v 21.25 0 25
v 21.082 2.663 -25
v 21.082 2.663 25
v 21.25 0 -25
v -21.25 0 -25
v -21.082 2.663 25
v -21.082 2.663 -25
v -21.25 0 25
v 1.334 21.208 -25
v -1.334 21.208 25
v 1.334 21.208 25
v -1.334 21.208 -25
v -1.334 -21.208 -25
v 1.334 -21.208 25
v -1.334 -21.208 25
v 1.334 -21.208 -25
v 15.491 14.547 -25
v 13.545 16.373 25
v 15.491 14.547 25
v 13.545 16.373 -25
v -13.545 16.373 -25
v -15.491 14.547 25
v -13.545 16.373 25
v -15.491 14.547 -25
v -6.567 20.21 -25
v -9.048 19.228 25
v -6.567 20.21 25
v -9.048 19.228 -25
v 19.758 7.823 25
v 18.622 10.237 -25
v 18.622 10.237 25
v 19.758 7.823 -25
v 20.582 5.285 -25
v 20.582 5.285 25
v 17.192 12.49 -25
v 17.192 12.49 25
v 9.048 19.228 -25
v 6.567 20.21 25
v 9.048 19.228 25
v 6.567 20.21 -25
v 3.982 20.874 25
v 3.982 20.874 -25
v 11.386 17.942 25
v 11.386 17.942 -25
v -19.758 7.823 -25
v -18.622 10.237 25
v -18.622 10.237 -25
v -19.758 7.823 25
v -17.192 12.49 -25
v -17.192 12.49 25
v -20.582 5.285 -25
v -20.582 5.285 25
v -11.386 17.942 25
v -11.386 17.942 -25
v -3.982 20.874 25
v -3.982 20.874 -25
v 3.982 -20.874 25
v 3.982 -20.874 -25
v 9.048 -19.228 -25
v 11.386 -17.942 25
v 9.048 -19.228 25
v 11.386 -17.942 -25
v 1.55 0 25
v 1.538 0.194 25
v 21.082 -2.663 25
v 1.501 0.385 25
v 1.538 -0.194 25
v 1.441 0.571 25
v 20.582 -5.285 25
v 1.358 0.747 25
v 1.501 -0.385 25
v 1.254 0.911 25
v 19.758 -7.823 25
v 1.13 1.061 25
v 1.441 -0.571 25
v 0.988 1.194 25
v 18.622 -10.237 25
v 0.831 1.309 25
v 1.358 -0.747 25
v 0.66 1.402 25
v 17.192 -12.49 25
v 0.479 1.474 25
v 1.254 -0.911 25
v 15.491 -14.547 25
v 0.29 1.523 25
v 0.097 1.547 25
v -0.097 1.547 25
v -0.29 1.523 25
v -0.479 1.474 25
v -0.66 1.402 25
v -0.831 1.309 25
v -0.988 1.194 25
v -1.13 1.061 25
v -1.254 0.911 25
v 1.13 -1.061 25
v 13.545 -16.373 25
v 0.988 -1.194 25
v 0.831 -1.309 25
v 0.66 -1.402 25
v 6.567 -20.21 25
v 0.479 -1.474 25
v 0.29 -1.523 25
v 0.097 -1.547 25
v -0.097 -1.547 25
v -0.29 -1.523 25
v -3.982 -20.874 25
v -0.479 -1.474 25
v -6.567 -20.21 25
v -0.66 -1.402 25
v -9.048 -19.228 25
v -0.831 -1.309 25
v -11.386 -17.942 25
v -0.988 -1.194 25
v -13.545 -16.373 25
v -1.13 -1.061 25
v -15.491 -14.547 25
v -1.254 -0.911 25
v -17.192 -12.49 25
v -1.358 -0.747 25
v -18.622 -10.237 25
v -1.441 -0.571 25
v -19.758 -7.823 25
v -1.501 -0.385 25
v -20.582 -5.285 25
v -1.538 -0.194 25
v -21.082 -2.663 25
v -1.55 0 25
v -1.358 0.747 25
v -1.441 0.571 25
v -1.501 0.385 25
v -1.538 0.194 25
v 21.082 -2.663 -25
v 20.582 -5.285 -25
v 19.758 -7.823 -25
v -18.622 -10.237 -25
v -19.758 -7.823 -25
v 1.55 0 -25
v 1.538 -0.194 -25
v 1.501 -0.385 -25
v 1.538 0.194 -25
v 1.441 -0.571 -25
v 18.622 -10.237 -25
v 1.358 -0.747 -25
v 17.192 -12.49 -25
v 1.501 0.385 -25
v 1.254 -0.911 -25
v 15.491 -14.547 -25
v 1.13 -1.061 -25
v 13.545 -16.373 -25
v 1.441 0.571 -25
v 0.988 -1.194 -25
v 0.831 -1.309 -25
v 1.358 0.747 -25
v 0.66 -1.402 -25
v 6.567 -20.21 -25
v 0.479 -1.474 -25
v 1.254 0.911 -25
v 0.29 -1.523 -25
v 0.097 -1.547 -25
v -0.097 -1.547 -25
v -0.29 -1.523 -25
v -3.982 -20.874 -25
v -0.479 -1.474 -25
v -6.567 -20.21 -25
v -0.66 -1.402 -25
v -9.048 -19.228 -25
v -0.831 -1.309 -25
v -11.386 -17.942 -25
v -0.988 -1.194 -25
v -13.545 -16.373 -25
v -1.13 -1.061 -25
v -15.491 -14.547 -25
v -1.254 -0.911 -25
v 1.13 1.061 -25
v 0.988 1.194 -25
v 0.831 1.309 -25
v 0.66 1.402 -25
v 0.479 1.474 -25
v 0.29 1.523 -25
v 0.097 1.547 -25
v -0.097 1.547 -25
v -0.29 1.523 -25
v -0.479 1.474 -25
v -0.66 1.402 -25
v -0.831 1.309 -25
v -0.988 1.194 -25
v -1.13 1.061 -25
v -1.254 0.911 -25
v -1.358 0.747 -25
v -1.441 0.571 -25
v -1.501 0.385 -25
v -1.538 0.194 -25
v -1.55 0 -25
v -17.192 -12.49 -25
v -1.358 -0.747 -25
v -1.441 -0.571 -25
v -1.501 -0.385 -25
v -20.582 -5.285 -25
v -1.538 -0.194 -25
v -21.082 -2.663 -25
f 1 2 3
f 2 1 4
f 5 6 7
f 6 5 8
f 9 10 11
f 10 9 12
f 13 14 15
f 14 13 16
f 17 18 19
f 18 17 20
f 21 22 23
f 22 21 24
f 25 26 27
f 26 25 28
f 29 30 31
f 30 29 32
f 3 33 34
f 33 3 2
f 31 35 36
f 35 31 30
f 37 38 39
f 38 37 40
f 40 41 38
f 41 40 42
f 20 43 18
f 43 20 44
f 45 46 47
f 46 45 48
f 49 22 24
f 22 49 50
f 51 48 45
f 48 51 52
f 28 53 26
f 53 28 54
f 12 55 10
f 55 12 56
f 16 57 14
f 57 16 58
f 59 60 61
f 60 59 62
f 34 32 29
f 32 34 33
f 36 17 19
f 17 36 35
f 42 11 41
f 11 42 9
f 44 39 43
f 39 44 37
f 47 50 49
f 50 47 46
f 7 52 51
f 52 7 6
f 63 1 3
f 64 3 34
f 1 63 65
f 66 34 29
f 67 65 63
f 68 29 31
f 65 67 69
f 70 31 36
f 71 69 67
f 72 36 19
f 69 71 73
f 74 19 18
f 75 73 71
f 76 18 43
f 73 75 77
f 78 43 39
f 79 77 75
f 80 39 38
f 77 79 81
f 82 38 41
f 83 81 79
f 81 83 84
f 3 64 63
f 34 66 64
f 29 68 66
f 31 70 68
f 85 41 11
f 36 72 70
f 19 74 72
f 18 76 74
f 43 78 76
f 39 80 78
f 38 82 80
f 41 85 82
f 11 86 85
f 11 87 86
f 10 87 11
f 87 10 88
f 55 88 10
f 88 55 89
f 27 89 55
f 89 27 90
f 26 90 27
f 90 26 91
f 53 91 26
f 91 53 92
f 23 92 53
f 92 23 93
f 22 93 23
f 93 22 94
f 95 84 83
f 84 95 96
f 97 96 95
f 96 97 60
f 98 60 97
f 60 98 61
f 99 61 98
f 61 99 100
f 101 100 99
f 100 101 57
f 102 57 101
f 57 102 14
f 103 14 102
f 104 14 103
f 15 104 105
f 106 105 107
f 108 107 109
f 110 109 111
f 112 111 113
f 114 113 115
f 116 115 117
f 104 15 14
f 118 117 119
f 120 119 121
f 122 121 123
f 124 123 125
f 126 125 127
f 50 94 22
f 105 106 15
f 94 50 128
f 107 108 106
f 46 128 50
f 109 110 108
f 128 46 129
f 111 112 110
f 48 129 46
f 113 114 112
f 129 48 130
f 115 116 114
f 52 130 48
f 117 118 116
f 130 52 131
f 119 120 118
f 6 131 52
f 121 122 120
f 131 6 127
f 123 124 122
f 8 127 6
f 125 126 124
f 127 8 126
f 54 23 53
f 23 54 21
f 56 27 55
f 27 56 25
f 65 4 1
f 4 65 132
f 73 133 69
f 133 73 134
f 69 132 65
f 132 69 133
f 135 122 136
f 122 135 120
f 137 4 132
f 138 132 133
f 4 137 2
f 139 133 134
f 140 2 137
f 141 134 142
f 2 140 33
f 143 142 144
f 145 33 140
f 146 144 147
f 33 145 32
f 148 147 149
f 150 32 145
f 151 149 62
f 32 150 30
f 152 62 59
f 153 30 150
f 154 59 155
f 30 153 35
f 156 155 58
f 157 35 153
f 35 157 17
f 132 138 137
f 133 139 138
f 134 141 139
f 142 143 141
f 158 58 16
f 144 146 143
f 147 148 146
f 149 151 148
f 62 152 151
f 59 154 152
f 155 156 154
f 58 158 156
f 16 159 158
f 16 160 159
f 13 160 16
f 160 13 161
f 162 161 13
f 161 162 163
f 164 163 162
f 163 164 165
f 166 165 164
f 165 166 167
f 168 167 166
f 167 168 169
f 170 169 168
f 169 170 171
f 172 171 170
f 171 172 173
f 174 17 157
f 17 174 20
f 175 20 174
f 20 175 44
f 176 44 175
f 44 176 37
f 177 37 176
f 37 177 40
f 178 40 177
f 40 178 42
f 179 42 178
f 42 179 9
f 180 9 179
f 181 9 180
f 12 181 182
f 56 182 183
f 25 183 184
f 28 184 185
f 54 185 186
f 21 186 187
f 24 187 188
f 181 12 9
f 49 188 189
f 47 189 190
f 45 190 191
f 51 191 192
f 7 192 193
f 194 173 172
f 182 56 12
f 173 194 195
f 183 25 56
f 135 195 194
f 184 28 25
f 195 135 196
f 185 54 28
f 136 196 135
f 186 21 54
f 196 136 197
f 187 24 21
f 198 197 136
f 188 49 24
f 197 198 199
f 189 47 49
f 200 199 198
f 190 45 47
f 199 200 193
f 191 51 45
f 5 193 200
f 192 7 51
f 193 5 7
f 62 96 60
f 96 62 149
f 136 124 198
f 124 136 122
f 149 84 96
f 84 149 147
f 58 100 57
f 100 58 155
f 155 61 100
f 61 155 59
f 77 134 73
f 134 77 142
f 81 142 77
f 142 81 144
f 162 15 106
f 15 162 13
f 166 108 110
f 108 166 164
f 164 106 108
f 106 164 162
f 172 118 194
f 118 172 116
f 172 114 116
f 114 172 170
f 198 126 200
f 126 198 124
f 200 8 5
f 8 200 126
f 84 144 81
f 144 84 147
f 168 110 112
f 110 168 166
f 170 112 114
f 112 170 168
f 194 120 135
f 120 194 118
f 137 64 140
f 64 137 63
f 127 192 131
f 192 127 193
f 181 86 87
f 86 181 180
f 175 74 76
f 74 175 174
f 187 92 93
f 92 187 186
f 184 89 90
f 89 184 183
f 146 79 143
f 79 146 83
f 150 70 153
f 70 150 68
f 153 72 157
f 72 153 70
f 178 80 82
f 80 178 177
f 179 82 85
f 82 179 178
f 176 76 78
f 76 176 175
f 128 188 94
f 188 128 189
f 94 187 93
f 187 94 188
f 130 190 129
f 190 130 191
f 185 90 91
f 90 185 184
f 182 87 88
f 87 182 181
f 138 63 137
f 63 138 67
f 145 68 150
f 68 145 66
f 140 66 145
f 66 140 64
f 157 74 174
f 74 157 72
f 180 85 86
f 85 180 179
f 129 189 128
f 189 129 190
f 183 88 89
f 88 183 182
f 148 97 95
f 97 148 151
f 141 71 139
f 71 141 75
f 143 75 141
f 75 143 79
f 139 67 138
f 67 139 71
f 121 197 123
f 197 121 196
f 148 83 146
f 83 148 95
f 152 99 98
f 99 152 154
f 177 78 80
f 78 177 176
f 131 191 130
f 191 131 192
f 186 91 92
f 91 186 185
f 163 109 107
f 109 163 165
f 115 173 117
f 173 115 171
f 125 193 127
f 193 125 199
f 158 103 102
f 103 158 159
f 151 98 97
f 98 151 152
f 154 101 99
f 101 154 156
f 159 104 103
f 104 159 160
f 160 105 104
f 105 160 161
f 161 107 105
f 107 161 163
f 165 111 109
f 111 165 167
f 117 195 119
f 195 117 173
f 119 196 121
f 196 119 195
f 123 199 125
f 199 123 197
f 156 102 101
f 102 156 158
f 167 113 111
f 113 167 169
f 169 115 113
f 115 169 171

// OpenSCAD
$fn = 50;


difference() {
	union() {
		translate(v = [0, 0, -25.0000000000]) {
			cylinder(h = 50, r = 21.2500000000);
		}
	}
	union() {
		translate(v = [0, 0, -100.0000000000]) {
			cylinder(h = 200, r = 1.5500000000);
		}
	}
}
